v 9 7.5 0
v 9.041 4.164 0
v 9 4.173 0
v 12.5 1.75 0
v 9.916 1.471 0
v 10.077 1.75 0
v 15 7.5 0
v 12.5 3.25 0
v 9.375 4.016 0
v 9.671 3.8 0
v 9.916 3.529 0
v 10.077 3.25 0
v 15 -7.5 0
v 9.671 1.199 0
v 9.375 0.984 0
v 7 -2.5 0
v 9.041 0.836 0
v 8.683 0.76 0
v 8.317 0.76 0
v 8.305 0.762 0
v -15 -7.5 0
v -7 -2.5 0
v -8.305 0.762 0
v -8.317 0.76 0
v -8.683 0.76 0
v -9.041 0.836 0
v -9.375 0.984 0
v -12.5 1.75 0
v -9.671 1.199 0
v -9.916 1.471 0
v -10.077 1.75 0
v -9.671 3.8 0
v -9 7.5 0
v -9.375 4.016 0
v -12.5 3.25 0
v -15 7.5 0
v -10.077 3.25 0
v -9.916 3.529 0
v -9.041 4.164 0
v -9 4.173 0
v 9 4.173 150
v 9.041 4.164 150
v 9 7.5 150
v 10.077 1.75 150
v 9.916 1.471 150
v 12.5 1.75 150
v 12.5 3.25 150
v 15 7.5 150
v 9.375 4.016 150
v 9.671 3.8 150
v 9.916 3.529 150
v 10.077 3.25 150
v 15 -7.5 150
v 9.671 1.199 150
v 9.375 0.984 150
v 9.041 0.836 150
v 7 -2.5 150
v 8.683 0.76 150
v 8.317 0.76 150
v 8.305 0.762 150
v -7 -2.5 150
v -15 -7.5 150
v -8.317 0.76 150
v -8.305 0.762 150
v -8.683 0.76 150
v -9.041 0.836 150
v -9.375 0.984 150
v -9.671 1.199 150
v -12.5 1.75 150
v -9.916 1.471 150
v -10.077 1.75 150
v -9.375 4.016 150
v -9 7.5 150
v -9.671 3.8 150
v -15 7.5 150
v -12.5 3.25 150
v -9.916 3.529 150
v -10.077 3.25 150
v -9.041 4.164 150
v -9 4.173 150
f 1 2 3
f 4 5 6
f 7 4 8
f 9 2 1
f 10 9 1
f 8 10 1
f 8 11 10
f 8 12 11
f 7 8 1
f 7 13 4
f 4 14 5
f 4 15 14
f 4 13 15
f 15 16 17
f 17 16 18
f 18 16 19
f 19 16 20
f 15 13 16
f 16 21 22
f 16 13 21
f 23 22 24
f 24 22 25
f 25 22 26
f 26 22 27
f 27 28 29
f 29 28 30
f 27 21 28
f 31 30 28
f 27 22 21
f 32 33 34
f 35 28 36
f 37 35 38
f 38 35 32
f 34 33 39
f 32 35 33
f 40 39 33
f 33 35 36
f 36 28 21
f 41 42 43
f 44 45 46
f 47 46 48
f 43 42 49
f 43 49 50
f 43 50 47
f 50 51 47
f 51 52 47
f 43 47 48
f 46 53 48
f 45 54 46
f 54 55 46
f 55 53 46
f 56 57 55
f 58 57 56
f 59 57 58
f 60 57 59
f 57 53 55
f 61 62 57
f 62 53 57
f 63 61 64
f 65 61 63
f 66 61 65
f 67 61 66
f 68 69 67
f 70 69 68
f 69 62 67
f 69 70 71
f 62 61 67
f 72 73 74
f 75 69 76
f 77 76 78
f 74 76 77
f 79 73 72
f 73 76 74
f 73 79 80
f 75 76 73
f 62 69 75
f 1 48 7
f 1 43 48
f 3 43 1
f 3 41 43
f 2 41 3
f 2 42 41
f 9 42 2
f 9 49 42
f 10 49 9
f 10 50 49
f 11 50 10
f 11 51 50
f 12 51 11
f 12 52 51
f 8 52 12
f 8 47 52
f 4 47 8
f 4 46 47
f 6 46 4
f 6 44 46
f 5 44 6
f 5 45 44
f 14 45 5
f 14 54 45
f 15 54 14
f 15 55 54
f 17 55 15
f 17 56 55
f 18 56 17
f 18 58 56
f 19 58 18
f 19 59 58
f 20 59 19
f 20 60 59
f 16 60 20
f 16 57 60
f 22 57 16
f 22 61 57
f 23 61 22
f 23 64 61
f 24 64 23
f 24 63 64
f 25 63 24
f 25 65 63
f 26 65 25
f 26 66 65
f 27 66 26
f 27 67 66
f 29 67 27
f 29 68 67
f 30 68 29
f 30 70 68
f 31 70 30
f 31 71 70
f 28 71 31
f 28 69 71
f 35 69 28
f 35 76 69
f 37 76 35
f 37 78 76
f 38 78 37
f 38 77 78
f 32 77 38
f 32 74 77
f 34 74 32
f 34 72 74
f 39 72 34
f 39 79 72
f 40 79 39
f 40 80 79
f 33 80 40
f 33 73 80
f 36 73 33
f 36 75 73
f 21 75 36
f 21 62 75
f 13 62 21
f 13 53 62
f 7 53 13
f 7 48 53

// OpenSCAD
// file: BOSL2/std.scad
// Minimal BOSL2 compatibility shim for bundled gallery models.
// It implements only the helpers used by the imported OpenSCAD projects.

CENTER = [0, 0, 0];
BOTTOM = [0, 0, -1];
TOP = [0, 0, 1];
LEFT = [-1, 0, 0];
RIGHT = [1, 0, 0];
FRONT = [0, -1, 0];
BACK = [0, 1, 0];

module up(z=0) {
    translate([0, 0, z]) children();
}

module down(z=0) {
    translate([0, 0, -z]) children();
}

module attach(anchor=CENTER) {
    children();
}

module cuboid(size=[1, 1, 1], anchor=CENTER) {
    center = anchor == CENTER;
    translate(center ? [0, 0, 0] : [0, 0, size[2] / 2])
        cube(size, center=true);
    children();
}

module xcyl(h=1, r=1, anchor=CENTER) {
    center = anchor == CENTER;
    translate(center ? [0, 0, 0] : [h / 2, 0, 0])
        rotate([0, 90, 0])
            cylinder(h=h, r=r, center=true);
}
// main file
include <BOSL2/std.scad>
$fn = 20;
circlefn =30;
//共通
Space_Upper_Wide = 17;
Space_Under_Wide = 13;

Space_Upper_High = 5;
Space_Under_High = 4;

Ball_radius = 3.5/2; //直径2.5mmを採用
Groove = 1;

//レール
Rail_Thickness = 150;
Rail_High = 15;
Rail_Wide = 30;

Rail_Space_Upper_Wide = Space_Upper_Wide+Groove;
Rail_Space_Under_Wide = Space_Under_Wide+Groove;

Rail_Space_Upper_High = Space_Upper_High;
Rail_Space_Under_High = Space_Under_High+Groove;

Rail_Nail_Wide = 2;
Rail_Nail_High = 1.5;

//ブロック
Block_Thickness = 20;

Block_Space_Upper_Wide = Space_Upper_Wide-Groove;
Block_Space_Under_Wide = Space_Under_Wide-Groove;

Block_Space_Upper_High = Space_Upper_High;
Block_Space_Under_High = Space_Under_High-Groove/2;

Block_Tube_Radius = Ball_radius*1.3;
Block_Tube_Distance = 5;
//ブロックエンド
Blockend_Thickness = 10;
Blockend_Radius = Ball_radius*0.8;

//ブロックエンド
Blockend_Rail_Nail_Wide = Rail_Nail_Wide*0.7;
//ブロックエンド
Blockend_Rail_Nail_High = Rail_Nail_High*0.7;

/*viewmode
0:全部表示
1:レールだけ
2:ブロックだけ
*/
viewmode = 1;

/* ブロックsplitmode
0:結合
1:分割表示
*/
splitmode = 1;

if (viewmode==0||viewmode==1){
    color("yellow")
    rail();
}

if (viewmode == 0 || viewmode == 2) {

    color("green")

    if (splitmode == 0) {
        // 通常表示
        blockandscrew();
    }

    if (splitmode == 1) {

        cut_y = Rail_High/2
              - Block_Space_Upper_High
              + Blockend_Rail_Nail_High/2;

        // 上半分
        intersection() {
            union() {
                blockandscrew();
            }

            translate([-1000, cut_y, -1000])
                cube([2000, 1000, 2000]);
        }

        // 下半分
        translate([40, 0, 0]) {
            intersection() {
                union() {
                    blockandscrew();
                }

                translate([-1000, -1000, -1000])
                    cube([2000, cut_y + 1000, 2000]);
            }
        }
    }
}





//ブロック----------------------------------------------
module blockandscrew(){
    difference(){
        block();
        translate([0,Rail_High/2,-7])
        rotate([90,0,0])
        screw();
        translate([0,Rail_High/2,27])
        rotate([90,0,0])
        screw();
    }
    
}






module block(){
    linear_extrude(height = Block_Thickness)
    difference(){//本体
         translate([0,Rail_High/2-Block_Space_Upper_High])//本体
         polygon(points=[
            [-Block_Space_Upper_Wide/2,Block_Space_Upper_High],
            [-Block_Space_Upper_Wide/2,0], 
            [-Block_Space_Under_Wide/2,-Block_Space_Under_High],
            [Block_Space_Under_Wide/2,-Block_Space_Under_High],
            [Block_Space_Upper_Wide/2,0], 
            [Block_Space_Upper_Wide/2,Block_Space_Upper_High],

        ]);         
        for (x=[-1,1]) {//ボール用溝
            translate([
                x * Space_Upper_Wide/2,
                Rail_High/2-Block_Space_Upper_High
            ])
            circle(r = Ball_radius, $fn = circlefn);
        } 
        for (x=[-1,1]) {//ボール用溝
            translate([
                x * Block_Tube_Distance/2,
                Rail_High/2-Block_Space_Upper_High
            ])
            circle(r = Block_Tube_Radius, $fn = circlefn);
        }
        

        
        
    }
    translate([0,Rail_High/2-Rail_Space_Upper_High,Block_Thickness])
    blockend();
    rotate([0,180,0])
    translate([0,Rail_High/2-Rail_Space_Upper_High,0])
    blockend();
   
}

//ブロック端
module blockend(){
    difference(){
        linear_extrude(height=Blockend_Thickness)
        union(){
            polygon(points=[
                [-Block_Space_Upper_Wide/2,Block_Space_Upper_High],
                [-Block_Space_Upper_Wide/2,0], 
                [-Block_Space_Under_Wide/2,-Block_Space_Under_High],
                [Block_Space_Under_Wide/2,-Block_Space_Under_High],
                [Block_Space_Upper_Wide/2,0], 
                [Block_Space_Upper_Wide/2,Block_Space_Upper_High],

            ]);
            for (x=[-1,1]) {
                translate([x*Space_Upper_Wide/2, 0])
                circle(r=Blockend_Radius,$fn = circlefn);
            }
            for (x = [-1, 1]) {//爪用溝
                translate([
                    x * Space_Upper_Wide/2,0])
            square([(Blockend_Rail_Nail_Wide)*4,Blockend_Rail_Nail_High],center=true);
        }
        }
        blockendtube();
    }
}


module blockendtube(){
    path_r = (Space_Upper_Wide - Block_Tube_Distance) / 2;
    center_x = (Space_Upper_Wide + Block_Tube_Distance) /4;
    for (x = [-1, 1]) {
        translate([x * center_x, 0, 0])
        rotate([-90, 180, x == 1 ? 180 : 0])
            variable_spiral_tube();
    }
}



module variable_spiral_tube(){//tube接続
    steps = 15;

    for (i = [0 : steps-1]) {
        hull() {
            spiral_ball(i, steps);
            spiral_ball(i+1, steps);
        }
    }
}

module spiral_ball(i, steps) {
    t = i / steps;

    // 巻き角度
    angle = 360 * 0.5 * t;

    // 中心線の巻き半径
    path_r = (Space_Upper_Wide-Block_Tube_Distance)/4;

    // チューブ自体の半径
    tube_r = Ball_radius + (Block_Tube_Radius - Ball_radius) * t;

    translate([
        path_r * cos(angle),
        path_r * sin(angle),
        0
    ])
    sphere(r = tube_r);
}

//ネジ穴
module screw(){
    head = 3.8;
    head_high = 1.2;
    screw_big = 2.3;
    screw_big_high=Block_Space_Upper_High+Blockend_Rail_Nail_High/2;
    screw_thin = 2;
    screw_thin_high = Block_Space_Under_High;
    
    cylinder(h=head_high,d=head,center=false);
    translate([0,0,head_high])
    cylinder(h=screw_big_high,d=screw_big,center=false);
    translate([0,0,head_high+screw_big_high])
    cylinder(h=Block_Space_Under_High,d=screw_thin,center=false);
}

















//レール
module rail(){
    linear_extrude(height = Rail_Thickness)
    difference(){
        square([Rail_Wide,Rail_High],center=true);//レール外径
        translate([0,(Rail_High-Rail_Space_Upper_High)/2])//上側の溝
        square([Rail_Space_Upper_Wide,Rail_Space_Upper_High],center=true);
        translate([0,(Rail_High-2*Rail_Space_Upper_High-Rail_Space_Under_High)/2])//下側溝
        polygon(points=[//下側溝
            [-Rail_Space_Upper_Wide/2,Rail_Space_Under_High/2],//左上
            [-Rail_Space_Under_Wide/2,-Rail_Space_Under_High/2],//左下 
            [Rail_Space_Under_Wide/2,-Rail_Space_Under_High/2],// 右下
            [Rail_Space_Upper_Wide/2,Rail_Space_Under_High/2]// 右上
        ]);      
        for (x = [-1, 1]) {//ボール用溝
            translate([
                x * Space_Upper_Wide/2,
                Rail_High/2-Rail_Space_Upper_High
            ])
            circle(r = Ball_radius, $fn = circlefn);
        }
       
       for (x = [-1, 1]) {//爪用溝
            translate([
                x * Space_Upper_Wide/2,
                Rail_High/2-Rail_Space_Upper_High
            ])
            square([(Rail_Nail_Wide+Rail_Nail_Wide)*2,Rail_Nail_High],center=true);
        }
        
        
        
    }


}    
